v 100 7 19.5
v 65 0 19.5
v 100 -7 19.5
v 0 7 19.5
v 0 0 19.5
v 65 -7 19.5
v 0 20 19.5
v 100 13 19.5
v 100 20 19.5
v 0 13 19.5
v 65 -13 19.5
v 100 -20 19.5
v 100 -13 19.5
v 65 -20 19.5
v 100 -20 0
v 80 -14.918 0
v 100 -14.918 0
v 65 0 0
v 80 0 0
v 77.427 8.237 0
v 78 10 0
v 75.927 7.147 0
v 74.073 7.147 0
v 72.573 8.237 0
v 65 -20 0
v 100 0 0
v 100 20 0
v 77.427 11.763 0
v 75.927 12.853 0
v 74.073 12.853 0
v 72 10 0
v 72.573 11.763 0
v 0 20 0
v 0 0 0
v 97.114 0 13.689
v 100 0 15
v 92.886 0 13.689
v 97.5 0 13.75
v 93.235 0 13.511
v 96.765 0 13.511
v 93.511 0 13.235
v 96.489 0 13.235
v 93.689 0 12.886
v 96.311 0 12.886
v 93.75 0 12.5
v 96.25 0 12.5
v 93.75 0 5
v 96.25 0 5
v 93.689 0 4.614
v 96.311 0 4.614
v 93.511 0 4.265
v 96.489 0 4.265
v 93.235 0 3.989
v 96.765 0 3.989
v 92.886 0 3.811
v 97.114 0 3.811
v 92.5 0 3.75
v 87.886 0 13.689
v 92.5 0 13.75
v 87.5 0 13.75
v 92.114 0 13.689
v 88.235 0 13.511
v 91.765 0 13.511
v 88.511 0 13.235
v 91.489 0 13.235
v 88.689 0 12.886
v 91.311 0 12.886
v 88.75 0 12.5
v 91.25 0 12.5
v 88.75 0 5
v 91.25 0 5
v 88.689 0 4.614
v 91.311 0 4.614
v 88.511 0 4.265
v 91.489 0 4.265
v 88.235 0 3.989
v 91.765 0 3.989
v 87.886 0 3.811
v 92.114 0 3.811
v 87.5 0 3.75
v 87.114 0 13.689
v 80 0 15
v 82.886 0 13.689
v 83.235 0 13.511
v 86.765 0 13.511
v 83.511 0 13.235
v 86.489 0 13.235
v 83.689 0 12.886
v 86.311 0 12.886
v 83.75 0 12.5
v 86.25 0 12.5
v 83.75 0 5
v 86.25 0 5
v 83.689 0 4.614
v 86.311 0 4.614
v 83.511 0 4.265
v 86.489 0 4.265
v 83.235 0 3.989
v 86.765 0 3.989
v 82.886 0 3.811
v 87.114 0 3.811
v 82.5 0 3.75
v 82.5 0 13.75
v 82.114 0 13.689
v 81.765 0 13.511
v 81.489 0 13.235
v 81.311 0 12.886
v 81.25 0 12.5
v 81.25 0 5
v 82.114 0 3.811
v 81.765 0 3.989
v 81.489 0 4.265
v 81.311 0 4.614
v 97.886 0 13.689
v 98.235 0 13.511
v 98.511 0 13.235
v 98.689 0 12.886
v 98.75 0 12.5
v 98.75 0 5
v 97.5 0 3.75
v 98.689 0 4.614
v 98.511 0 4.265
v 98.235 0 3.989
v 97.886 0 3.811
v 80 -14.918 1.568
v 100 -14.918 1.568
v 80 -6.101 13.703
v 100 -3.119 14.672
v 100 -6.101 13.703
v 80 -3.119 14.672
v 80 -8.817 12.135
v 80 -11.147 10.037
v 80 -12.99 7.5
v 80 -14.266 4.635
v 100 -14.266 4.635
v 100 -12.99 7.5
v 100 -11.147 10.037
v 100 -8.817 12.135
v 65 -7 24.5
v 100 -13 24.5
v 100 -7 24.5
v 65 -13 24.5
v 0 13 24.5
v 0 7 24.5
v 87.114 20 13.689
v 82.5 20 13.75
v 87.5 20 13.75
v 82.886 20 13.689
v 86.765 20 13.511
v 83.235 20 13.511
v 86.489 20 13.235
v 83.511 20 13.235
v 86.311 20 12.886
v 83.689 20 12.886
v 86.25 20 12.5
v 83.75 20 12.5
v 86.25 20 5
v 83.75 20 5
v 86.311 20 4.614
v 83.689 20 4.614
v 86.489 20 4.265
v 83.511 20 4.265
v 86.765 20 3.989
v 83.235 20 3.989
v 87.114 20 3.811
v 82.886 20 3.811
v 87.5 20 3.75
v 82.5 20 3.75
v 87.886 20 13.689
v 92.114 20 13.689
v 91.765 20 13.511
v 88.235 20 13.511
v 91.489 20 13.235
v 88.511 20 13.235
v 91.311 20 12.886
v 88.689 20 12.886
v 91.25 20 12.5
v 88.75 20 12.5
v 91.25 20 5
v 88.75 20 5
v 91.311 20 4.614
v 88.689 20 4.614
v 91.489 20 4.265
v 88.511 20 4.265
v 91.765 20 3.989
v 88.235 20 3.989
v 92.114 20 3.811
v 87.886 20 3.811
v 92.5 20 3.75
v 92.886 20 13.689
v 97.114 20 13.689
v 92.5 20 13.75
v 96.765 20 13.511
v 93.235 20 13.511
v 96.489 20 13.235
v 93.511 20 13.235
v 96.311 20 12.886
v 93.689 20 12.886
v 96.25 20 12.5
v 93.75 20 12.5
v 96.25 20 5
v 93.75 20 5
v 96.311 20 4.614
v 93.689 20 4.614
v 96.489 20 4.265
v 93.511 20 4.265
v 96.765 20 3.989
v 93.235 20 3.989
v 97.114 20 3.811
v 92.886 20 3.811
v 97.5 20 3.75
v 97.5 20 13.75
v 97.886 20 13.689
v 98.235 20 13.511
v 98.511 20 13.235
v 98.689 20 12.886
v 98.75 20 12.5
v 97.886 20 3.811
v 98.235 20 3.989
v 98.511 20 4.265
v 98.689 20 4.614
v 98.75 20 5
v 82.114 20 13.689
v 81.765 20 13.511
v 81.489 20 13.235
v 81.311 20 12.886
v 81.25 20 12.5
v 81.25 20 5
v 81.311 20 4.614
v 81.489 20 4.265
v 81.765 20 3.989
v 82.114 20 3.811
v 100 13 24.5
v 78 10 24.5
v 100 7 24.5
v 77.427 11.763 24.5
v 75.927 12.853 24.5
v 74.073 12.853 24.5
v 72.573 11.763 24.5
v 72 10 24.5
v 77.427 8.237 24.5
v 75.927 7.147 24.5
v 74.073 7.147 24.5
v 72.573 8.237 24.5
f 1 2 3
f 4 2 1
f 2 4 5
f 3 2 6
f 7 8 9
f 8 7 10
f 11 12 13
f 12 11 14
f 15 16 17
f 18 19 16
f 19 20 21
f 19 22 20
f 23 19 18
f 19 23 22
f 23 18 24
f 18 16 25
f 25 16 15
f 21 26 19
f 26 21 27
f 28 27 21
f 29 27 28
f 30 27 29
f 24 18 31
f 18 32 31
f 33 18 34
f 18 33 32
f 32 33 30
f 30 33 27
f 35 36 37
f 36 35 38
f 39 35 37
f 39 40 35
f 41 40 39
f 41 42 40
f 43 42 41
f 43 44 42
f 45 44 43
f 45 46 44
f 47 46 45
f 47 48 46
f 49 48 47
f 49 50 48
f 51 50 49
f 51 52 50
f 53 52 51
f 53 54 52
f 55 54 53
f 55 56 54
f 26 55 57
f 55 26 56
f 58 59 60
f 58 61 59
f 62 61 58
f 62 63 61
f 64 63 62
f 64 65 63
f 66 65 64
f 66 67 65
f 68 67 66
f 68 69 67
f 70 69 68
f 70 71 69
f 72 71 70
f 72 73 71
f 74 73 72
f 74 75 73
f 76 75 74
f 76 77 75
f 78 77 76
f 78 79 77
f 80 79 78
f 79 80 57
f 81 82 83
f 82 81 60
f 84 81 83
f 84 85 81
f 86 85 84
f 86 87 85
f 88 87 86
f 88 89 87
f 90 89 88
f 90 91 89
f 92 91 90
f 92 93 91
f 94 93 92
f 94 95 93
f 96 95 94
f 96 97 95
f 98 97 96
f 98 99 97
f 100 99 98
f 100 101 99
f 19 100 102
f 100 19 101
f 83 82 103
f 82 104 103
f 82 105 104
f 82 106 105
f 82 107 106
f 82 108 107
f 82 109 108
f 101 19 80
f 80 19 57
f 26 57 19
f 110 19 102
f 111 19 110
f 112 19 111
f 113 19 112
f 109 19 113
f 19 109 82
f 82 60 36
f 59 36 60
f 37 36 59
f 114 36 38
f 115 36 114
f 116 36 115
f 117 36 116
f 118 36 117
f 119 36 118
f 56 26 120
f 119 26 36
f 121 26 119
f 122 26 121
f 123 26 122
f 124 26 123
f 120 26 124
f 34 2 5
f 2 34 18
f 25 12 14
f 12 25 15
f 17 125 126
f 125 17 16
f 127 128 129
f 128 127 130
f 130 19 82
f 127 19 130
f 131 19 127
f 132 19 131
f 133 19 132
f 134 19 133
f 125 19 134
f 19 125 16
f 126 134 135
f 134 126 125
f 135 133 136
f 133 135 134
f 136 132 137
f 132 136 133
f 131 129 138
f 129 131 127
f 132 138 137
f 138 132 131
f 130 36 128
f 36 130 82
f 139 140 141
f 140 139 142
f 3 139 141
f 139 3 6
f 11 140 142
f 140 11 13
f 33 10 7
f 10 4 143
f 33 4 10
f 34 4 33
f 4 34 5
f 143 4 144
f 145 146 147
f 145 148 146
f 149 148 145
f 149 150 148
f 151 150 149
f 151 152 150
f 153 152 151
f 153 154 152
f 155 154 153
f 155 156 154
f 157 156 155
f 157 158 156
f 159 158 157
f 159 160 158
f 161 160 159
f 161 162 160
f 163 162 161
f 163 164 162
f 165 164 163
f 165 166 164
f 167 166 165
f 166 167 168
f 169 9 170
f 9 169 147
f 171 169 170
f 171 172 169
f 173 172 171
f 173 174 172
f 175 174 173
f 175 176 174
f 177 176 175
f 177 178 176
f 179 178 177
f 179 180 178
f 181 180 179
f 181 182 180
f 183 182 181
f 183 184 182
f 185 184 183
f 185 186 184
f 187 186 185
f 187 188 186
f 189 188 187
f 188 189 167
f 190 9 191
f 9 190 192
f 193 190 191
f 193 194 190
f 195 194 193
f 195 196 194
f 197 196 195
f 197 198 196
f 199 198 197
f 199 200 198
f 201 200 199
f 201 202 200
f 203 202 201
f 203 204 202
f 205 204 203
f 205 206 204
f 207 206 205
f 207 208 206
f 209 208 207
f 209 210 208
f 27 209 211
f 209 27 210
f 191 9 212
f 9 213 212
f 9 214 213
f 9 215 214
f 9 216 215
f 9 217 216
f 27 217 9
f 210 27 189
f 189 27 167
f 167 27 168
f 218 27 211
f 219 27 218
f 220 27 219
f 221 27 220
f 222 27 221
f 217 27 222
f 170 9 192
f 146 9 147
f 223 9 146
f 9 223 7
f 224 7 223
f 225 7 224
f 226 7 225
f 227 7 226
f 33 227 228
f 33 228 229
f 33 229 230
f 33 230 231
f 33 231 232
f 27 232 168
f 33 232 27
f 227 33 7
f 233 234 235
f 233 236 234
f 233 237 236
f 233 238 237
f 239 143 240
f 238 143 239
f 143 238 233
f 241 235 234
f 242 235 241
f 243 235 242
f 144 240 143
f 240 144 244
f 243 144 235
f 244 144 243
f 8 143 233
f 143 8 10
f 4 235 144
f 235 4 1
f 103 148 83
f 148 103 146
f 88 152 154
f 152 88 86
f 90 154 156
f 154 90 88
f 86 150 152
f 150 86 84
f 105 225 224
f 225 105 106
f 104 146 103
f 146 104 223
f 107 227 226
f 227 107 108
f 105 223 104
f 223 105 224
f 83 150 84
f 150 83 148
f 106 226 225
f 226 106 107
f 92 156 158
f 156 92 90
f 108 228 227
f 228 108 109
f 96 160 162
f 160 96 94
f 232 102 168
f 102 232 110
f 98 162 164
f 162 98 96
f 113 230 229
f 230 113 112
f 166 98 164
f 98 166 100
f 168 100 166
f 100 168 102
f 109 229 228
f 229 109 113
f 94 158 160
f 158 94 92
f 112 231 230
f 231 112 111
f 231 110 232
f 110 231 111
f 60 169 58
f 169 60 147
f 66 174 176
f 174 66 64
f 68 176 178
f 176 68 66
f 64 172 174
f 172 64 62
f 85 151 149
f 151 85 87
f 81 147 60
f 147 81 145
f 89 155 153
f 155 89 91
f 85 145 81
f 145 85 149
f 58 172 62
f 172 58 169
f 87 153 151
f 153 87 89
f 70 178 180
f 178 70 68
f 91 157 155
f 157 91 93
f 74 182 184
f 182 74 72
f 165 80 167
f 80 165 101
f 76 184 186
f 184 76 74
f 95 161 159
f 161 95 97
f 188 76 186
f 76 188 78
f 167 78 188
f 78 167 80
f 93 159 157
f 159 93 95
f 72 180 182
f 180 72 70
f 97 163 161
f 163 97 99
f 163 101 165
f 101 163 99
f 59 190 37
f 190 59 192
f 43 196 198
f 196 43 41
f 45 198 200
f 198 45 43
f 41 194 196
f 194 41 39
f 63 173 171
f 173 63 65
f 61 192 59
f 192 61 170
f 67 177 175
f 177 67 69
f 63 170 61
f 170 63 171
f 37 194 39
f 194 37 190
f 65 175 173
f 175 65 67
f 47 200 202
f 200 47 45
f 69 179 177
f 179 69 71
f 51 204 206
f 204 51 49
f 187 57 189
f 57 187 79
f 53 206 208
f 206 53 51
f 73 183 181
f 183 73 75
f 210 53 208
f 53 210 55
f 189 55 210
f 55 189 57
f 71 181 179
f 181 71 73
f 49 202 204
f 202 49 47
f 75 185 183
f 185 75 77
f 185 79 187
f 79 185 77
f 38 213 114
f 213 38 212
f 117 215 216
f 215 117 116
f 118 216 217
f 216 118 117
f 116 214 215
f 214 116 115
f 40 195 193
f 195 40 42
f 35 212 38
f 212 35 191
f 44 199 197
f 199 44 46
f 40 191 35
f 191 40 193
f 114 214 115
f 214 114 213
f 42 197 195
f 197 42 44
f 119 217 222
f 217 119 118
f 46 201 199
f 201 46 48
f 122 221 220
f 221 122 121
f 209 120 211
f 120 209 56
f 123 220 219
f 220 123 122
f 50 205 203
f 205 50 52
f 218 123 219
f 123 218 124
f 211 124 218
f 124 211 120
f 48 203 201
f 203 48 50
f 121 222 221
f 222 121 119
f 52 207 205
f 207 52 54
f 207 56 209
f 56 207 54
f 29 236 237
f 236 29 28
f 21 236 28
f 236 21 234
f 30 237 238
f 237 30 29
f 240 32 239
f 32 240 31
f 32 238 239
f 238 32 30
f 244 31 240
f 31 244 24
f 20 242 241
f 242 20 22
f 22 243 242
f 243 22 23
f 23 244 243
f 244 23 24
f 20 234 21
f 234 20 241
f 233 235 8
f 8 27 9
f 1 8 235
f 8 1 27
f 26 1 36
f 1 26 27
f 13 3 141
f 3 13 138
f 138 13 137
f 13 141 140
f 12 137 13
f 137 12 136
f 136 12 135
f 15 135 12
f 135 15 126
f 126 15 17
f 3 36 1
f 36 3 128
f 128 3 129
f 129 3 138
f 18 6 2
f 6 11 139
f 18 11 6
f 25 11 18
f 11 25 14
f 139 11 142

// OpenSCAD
module airvent() {
    translate([0,40,5]){
        rotate(a=[90,0,0]){
            translate([0,7.5,20]){
                cylinder(r=1.25, h=20,$fn=20);
            }
            translate([-1.25,0,20]){
                cube([2.5,7.5,20]);
            }
            
            translate([0,0,20]){
                cylinder(r=1.25, h=20,$fn=20);
            }
        }
    }
}

module bracket() {
difference() {
    union() {
        // long rim
        cube([200, 20, 19.5]);
        translate([0,7,19.5]){
            cube([200, 6, 5]);
        }
        
        // short rim
        translate([50,-20,0]){ 
            difference(){
                cube([150, 20, 19.5]);
                translate([30,20,0]){
                rotate(a=[0,90,0]){
                    cylinder(h = 100, r=15);
                }
            }
            }
            translate([0,7,19.5]){
                cube([150, 6, 5]);
            }
        }
     }
     
    // hole 1
    translate([75,10,12.5]){
          cylinder(h = 25, r = 3, center = true);
     }
 
     // hole 2
     translate([185,10,12.5]){
        cylinder(h = 25, r = 3, center = true);
       }
    
      for ( i = [0 : 19] ){
          translate([82.5 + i*5,0,0]){ airvent(); }
      }
  }
}
 

module partA(){
difference(){
     bracket();
      translate([100,-20,0]){
        cube([100,40,25]);
     }
 }
 }

module partB() {
 translate([10,0,0]){
 intersection(){
     bracket();
      translate([100,-20,0]){
        cube([100,40,25]);
     }
 }
 }
 }
 
//partA();
//partB();
 
 // remix for picam
 difference(){
       partA();
     translate([0,-20,0]){
       cube([65,20,25]);
     }
 }
